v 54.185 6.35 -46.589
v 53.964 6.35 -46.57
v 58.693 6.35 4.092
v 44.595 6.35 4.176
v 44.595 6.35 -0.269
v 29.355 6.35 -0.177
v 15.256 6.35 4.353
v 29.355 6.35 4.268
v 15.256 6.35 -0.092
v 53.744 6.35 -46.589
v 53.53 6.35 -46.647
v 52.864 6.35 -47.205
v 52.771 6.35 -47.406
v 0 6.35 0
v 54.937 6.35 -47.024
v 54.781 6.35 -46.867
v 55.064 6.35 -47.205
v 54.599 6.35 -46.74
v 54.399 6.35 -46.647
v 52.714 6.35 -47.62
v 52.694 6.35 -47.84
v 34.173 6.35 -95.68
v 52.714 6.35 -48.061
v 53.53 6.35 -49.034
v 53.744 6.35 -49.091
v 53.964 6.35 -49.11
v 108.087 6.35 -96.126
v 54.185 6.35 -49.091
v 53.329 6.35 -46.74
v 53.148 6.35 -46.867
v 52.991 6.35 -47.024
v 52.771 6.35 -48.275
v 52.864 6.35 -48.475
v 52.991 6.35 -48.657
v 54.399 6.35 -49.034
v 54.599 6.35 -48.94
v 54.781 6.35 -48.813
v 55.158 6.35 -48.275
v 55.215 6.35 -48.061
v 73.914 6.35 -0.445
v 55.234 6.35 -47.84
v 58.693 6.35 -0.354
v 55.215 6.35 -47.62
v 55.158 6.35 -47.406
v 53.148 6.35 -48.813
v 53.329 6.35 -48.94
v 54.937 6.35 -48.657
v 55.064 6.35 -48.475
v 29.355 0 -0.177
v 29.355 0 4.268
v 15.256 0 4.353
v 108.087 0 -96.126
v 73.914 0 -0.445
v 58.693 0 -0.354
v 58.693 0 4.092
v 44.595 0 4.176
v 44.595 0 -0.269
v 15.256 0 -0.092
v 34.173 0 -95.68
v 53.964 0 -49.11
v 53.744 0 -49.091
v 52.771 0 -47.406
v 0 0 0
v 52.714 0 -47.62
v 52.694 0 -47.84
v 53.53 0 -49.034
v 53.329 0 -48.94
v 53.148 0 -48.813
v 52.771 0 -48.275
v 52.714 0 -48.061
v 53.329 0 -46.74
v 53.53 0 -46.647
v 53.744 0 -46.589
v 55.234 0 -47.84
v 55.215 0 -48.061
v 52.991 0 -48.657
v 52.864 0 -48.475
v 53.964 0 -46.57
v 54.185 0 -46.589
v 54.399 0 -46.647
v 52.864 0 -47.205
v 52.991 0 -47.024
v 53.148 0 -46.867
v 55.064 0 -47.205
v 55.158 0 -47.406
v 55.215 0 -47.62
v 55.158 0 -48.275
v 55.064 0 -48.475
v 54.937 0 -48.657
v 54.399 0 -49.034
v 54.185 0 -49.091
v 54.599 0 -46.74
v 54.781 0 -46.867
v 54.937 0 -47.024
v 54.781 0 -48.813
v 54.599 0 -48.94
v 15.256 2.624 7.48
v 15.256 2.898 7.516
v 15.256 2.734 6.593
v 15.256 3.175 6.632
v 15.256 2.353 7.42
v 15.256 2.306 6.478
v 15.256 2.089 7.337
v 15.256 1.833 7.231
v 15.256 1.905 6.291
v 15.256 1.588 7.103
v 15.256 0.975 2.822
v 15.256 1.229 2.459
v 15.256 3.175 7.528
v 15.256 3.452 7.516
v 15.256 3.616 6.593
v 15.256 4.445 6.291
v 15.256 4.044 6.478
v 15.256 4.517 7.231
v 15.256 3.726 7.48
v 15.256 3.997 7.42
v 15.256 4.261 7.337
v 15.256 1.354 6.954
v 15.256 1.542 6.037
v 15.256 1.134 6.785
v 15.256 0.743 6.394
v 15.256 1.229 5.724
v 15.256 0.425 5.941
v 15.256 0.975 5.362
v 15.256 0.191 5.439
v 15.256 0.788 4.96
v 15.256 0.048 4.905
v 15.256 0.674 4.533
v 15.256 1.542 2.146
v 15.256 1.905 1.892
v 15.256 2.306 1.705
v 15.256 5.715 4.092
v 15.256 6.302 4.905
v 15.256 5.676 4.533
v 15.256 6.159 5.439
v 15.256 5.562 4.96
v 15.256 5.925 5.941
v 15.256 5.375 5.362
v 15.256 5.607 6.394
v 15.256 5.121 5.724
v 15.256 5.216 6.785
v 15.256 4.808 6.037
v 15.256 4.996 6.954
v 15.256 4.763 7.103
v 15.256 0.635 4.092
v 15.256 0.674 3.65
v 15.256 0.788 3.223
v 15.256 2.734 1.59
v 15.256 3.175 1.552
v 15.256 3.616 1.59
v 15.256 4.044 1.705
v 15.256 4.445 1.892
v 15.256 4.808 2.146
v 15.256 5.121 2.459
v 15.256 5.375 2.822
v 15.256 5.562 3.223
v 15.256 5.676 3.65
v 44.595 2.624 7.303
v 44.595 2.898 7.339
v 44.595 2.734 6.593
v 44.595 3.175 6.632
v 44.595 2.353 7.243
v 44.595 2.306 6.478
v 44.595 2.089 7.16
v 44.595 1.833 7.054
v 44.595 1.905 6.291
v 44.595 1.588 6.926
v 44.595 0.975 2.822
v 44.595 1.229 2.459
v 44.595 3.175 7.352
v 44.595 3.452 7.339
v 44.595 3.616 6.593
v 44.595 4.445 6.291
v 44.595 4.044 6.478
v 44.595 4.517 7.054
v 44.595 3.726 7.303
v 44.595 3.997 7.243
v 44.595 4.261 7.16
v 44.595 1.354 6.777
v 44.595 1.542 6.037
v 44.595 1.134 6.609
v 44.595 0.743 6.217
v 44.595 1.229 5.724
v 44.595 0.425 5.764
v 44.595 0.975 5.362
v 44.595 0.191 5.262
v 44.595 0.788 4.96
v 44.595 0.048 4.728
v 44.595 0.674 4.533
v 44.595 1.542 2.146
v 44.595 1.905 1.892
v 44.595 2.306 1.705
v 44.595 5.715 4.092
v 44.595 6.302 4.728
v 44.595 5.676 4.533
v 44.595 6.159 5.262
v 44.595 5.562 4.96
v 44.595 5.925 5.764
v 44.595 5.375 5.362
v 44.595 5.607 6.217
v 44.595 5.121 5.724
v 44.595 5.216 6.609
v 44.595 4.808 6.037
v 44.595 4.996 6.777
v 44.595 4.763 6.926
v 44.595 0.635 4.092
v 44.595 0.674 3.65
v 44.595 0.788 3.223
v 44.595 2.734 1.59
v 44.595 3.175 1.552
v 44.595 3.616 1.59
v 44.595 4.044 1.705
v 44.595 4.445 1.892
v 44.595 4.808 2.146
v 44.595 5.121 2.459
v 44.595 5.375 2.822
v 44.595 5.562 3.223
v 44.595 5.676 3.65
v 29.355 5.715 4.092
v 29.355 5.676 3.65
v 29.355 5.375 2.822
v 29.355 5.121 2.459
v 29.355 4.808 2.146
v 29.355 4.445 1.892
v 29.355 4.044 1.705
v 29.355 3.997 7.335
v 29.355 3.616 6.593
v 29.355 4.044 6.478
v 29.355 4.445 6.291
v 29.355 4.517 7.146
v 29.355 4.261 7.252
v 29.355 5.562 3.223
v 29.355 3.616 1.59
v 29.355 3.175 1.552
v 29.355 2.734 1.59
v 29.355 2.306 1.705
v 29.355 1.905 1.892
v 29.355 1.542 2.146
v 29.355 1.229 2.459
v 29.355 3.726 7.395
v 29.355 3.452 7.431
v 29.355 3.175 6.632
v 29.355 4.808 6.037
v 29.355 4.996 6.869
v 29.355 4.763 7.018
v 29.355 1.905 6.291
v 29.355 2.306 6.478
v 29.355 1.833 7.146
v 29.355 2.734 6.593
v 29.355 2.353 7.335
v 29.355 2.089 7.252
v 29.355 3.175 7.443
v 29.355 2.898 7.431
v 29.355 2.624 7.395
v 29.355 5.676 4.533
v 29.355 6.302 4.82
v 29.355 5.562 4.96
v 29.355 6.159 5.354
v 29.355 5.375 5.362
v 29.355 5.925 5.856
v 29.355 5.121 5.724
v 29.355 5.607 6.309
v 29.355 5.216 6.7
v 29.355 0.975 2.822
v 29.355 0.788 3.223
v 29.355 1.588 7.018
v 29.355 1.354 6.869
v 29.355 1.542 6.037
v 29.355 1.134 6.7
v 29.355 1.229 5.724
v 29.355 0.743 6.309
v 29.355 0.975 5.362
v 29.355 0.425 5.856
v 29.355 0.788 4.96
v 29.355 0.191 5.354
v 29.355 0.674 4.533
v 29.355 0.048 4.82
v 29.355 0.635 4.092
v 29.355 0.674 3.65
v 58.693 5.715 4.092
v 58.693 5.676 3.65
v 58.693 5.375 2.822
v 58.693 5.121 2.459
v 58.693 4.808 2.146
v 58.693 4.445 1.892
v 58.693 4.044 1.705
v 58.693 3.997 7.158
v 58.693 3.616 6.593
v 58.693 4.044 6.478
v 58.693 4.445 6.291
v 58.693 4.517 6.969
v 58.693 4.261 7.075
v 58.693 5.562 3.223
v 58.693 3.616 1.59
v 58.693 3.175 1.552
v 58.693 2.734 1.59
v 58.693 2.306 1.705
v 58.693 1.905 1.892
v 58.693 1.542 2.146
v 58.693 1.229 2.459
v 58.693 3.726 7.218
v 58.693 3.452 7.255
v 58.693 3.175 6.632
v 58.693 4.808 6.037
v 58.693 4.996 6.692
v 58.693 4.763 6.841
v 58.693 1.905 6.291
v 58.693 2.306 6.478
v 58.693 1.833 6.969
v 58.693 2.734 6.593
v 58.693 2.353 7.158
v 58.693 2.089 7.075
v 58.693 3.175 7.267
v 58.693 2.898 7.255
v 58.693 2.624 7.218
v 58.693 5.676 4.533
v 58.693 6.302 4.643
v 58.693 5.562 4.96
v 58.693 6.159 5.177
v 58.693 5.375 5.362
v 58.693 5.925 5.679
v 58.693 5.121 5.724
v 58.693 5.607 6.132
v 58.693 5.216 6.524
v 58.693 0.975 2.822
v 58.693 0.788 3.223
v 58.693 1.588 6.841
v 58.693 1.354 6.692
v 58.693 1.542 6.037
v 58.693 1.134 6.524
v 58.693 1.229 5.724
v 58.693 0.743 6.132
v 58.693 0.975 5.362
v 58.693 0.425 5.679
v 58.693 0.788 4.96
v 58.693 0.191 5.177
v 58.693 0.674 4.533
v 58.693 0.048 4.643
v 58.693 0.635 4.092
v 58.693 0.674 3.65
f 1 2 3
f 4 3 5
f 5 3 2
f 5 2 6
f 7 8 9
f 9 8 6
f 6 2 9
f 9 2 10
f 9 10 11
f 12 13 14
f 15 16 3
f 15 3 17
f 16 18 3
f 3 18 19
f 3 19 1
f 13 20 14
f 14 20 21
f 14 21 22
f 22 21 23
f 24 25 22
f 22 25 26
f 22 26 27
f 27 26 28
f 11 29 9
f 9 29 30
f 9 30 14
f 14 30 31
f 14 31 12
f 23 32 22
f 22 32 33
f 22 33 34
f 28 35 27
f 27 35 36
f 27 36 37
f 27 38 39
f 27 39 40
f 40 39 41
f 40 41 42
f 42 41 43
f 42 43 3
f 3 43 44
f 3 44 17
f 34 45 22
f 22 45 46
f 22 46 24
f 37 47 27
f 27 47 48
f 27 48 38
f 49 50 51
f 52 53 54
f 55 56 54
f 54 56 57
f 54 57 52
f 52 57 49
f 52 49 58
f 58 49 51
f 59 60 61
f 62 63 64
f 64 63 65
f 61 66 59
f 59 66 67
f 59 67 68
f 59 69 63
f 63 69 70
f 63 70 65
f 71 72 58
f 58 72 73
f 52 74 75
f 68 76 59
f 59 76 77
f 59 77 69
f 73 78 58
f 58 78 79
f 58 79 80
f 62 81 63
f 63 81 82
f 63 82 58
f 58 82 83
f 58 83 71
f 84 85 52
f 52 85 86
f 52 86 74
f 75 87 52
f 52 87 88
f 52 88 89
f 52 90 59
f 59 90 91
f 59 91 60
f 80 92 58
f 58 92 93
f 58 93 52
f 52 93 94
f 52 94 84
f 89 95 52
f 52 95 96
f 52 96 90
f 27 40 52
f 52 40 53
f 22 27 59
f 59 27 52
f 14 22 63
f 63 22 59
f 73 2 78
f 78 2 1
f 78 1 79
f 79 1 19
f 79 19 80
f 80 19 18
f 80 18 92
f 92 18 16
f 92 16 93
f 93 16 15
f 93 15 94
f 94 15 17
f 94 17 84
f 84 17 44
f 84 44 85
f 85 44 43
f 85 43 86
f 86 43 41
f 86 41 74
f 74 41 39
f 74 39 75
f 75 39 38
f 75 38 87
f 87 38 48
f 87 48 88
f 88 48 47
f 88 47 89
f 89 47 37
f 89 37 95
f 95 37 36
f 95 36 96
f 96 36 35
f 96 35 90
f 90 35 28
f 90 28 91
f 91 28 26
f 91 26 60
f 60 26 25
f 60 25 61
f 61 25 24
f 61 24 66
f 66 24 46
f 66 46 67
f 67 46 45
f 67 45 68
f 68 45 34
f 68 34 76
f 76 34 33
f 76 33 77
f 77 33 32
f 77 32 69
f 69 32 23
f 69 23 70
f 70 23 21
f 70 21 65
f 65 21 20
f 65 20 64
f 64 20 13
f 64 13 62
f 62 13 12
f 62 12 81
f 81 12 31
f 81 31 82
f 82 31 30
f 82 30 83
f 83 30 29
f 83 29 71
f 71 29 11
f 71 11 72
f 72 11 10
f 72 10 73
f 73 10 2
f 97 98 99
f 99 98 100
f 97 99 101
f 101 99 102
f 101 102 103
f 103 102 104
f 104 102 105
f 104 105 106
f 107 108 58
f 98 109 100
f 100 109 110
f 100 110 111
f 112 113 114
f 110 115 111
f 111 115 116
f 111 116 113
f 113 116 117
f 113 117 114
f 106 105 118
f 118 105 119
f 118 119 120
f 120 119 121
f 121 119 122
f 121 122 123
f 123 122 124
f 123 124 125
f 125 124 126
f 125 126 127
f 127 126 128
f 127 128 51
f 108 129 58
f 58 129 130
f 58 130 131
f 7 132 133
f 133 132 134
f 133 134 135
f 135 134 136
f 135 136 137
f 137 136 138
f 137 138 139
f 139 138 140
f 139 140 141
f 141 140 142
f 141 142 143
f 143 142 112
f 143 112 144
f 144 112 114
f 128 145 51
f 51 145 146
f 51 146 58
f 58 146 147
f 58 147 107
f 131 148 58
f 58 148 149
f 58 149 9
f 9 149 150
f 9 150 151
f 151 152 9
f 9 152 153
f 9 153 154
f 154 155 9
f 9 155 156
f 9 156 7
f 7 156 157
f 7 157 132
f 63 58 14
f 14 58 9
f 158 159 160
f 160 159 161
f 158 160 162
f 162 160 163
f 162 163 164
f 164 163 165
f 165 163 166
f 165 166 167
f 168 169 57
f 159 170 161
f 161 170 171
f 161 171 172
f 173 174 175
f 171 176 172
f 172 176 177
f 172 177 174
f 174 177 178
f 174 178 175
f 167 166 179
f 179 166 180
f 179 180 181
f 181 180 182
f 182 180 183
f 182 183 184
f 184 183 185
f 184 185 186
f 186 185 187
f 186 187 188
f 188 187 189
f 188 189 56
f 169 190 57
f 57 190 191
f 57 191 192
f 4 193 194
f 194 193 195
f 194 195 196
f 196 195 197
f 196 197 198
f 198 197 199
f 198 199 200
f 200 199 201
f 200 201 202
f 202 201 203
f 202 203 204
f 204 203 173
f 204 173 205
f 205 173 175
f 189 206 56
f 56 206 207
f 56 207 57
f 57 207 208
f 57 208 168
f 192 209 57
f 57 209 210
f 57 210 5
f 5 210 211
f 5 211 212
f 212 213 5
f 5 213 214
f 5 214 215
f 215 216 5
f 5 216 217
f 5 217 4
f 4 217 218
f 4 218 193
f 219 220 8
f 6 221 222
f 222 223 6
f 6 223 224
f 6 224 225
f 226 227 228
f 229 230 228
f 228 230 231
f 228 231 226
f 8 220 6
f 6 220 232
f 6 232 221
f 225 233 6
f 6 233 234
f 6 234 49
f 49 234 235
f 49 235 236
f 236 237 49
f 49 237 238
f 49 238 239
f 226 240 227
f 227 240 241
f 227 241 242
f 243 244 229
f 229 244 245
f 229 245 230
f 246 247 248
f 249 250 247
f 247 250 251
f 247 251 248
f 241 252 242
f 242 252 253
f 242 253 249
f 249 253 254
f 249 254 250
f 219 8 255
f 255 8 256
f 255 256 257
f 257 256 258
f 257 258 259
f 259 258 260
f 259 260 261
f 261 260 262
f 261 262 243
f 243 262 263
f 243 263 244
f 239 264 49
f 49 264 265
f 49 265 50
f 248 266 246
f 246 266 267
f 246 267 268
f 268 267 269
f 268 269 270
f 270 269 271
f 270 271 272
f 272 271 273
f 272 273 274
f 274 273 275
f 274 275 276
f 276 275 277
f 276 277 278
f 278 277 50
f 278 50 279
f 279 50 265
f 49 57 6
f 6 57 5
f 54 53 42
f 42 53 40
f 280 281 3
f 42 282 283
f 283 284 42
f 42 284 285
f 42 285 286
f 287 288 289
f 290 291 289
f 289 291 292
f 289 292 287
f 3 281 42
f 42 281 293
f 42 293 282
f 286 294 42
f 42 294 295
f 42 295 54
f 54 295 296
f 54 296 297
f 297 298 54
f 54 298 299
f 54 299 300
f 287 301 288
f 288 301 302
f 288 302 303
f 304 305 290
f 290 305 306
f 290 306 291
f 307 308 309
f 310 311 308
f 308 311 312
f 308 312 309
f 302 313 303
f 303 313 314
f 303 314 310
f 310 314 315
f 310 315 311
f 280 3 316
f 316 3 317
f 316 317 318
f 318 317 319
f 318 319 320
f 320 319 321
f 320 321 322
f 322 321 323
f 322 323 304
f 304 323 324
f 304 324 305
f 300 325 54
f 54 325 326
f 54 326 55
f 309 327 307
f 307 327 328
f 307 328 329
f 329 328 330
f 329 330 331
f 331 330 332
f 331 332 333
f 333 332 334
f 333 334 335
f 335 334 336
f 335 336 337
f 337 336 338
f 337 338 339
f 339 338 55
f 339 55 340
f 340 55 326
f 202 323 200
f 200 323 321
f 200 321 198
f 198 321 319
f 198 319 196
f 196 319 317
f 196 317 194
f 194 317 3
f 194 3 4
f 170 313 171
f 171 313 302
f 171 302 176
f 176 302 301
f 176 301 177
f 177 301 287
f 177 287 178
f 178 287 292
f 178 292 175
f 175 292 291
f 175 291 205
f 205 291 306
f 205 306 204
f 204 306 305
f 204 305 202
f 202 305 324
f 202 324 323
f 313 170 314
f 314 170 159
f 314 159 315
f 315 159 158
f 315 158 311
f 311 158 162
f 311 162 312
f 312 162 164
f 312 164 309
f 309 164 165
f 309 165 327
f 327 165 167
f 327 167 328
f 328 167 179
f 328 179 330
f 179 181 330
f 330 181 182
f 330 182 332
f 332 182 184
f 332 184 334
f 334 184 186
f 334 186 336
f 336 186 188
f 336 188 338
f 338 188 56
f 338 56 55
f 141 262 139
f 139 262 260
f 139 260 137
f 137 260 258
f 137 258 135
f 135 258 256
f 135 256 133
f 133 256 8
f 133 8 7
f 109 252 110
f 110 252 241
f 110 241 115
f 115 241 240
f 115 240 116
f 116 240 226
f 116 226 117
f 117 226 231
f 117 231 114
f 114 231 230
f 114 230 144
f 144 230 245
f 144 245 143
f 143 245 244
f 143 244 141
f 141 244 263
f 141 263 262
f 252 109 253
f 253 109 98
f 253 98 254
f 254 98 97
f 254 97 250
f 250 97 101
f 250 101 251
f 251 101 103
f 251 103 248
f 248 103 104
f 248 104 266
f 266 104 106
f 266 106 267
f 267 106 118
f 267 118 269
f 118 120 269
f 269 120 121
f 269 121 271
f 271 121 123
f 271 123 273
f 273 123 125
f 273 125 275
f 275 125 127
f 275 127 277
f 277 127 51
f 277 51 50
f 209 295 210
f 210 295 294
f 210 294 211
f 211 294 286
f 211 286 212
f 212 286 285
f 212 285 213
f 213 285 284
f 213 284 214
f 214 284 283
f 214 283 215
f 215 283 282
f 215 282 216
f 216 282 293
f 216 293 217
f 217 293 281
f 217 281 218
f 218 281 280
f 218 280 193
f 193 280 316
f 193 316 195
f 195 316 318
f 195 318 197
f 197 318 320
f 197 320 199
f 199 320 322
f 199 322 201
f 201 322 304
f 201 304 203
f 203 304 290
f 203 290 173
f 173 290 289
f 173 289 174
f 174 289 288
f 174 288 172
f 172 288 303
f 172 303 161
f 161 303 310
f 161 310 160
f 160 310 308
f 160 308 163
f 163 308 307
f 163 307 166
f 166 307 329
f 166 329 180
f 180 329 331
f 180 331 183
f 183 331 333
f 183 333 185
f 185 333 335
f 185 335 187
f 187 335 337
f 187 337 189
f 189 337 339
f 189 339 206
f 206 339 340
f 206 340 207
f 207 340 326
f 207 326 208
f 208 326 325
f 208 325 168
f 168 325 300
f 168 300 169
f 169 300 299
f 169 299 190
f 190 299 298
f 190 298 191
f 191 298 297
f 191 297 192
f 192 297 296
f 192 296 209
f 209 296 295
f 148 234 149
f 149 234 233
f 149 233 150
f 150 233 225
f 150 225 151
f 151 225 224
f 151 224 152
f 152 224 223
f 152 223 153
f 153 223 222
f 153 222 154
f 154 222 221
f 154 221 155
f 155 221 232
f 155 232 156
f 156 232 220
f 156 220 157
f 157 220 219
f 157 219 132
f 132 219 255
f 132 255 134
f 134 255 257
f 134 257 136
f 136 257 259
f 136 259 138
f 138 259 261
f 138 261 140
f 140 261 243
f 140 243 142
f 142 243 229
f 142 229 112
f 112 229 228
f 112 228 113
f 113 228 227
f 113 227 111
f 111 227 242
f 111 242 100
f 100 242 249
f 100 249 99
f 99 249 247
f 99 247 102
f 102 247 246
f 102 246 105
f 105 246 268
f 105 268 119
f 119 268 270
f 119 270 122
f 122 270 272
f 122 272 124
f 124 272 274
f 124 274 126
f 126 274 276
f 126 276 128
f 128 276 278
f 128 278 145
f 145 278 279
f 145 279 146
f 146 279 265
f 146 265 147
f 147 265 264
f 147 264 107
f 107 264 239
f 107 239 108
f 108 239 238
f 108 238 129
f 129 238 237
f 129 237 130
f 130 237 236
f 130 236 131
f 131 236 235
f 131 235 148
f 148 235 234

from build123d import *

# Parameters (mm, degrees)
BOSS_EXTRUDE1_DEPTH = 6.35
CUT_EXTRUDE1_DEPTH  = 145.787309477
SKETCH3_W           = 73.915341148
SKETCH3_H           = 6.35
BOSS_EXTRUDE2_DEPTH = 7.62
CUT_EXTRUDE2_DEPTH  = 145.787309477
FILLET1_R           = 3.175
SKETCH5_R           = 2.54
CUT_EXTRUDE3_DEPTH  = 113.806666284


with BuildPart() as part:
    # Sketch1 → Boss-Extrude1 (new body)
    with BuildSketch(Plane(origin=(0, 0, 0), x_dir=(1, 0, 0), z_dir=(0, 1, 0))):
        Polygon((0, 0), (34.173489324, 95.680366991), (108.087489324, 96.125632051), (73.914, 0.44526506), align=None)
    extrude(amount=BOSS_EXTRUDE1_DEPTH)

    # Sketch2 → Cut-Extrude1 (cut, through all)
    with BuildSketch(Plane(origin=(0, 6.35, 0), x_dir=(1, 0, 0), z_dir=(0, 1, 0))):
        with BuildLine():
            ThreePointArc((55.234228554, 47.840183495), (53.964228554, 49.110183495), (52.694228554, 47.840183495))
            Line((52.694228554, 47.840183495), (55.234228554, 47.840183495))
        make_face()
        with BuildLine():
            Line((55.234228554, 47.840183495), (52.694228554, 47.840183495))
            ThreePointArc((52.694228554, 47.840183495), (53.964228554, 46.570183495), (55.234228554, 47.840183495))
        make_face()
    extrude(amount=-CUT_EXTRUDE1_DEPTH, mode=Mode.SUBTRACT)

    # Sketch3 → Boss-Extrude2 (add)
    with BuildSketch(Plane(origin=(0, 0, 0), x_dir=(0.9999818556252084, 0, -0.00602398708207968), z_dir=(0.00602398708207968, 0, 0.9999818556252085))):
        with Locations((36.957670574, 3.175)):
            Rectangle(SKETCH3_W, SKETCH3_H)
    extrude(amount=BOSS_EXTRUDE2_DEPTH)

    # Sketch4 → Cut-Extrude2 (cut, through all)
    with BuildSketch(Plane(origin=(0, 6.35, 0), x_dir=(1, 0, 0), z_dir=(0, 1, 0))):
        Polygon((15.256454596, 0.091906353), (0, 0), (0.045902782, -7.61986174), (15.256454596, -7.52823191), align=None)
        Polygon((44.594795755, 0.268643348), (29.354795755, 0.176836119), (29.354795755, -7.443302144), (44.594795755, -7.351494915), align=None)
        Polygon((73.914, 0.44526506), (58.693136915, 0.353573114), (58.693136915, -7.266565149), (73.959902782, -7.17459668), align=None)
    extrude(amount=-CUT_EXTRUDE2_DEPTH, mode=Mode.SUBTRACT)

    # Fillet1
    fillet1_edges = [part.edges().sort_by_distance(p)[0] for p in [
        (51.643966335, 0, 7.309030032),
        (51.643966335, 6.35, 7.309030032),
        (22.305625176, 0, 7.485767027),
        (22.305625176, 6.35, 7.485767027),
    ]]
    fillet(fillet1_edges, radius=FILLET1_R - 0.0001)  # a hair under: the kernel refuses the full size

    # Sketch5 → Cut-Extrude3 (cut, through all)
    with BuildSketch(Plane(origin=(58.693136915, 0, 0), x_dir=(0, 0, -1), z_dir=(1, 0, 0))):
        with Locations((-4.091507539, 3.175)):
            Circle(SKETCH5_R)
    extrude(amount=-CUT_EXTRUDE3_DEPTH, mode=Mode.SUBTRACT)


solid = part.part
